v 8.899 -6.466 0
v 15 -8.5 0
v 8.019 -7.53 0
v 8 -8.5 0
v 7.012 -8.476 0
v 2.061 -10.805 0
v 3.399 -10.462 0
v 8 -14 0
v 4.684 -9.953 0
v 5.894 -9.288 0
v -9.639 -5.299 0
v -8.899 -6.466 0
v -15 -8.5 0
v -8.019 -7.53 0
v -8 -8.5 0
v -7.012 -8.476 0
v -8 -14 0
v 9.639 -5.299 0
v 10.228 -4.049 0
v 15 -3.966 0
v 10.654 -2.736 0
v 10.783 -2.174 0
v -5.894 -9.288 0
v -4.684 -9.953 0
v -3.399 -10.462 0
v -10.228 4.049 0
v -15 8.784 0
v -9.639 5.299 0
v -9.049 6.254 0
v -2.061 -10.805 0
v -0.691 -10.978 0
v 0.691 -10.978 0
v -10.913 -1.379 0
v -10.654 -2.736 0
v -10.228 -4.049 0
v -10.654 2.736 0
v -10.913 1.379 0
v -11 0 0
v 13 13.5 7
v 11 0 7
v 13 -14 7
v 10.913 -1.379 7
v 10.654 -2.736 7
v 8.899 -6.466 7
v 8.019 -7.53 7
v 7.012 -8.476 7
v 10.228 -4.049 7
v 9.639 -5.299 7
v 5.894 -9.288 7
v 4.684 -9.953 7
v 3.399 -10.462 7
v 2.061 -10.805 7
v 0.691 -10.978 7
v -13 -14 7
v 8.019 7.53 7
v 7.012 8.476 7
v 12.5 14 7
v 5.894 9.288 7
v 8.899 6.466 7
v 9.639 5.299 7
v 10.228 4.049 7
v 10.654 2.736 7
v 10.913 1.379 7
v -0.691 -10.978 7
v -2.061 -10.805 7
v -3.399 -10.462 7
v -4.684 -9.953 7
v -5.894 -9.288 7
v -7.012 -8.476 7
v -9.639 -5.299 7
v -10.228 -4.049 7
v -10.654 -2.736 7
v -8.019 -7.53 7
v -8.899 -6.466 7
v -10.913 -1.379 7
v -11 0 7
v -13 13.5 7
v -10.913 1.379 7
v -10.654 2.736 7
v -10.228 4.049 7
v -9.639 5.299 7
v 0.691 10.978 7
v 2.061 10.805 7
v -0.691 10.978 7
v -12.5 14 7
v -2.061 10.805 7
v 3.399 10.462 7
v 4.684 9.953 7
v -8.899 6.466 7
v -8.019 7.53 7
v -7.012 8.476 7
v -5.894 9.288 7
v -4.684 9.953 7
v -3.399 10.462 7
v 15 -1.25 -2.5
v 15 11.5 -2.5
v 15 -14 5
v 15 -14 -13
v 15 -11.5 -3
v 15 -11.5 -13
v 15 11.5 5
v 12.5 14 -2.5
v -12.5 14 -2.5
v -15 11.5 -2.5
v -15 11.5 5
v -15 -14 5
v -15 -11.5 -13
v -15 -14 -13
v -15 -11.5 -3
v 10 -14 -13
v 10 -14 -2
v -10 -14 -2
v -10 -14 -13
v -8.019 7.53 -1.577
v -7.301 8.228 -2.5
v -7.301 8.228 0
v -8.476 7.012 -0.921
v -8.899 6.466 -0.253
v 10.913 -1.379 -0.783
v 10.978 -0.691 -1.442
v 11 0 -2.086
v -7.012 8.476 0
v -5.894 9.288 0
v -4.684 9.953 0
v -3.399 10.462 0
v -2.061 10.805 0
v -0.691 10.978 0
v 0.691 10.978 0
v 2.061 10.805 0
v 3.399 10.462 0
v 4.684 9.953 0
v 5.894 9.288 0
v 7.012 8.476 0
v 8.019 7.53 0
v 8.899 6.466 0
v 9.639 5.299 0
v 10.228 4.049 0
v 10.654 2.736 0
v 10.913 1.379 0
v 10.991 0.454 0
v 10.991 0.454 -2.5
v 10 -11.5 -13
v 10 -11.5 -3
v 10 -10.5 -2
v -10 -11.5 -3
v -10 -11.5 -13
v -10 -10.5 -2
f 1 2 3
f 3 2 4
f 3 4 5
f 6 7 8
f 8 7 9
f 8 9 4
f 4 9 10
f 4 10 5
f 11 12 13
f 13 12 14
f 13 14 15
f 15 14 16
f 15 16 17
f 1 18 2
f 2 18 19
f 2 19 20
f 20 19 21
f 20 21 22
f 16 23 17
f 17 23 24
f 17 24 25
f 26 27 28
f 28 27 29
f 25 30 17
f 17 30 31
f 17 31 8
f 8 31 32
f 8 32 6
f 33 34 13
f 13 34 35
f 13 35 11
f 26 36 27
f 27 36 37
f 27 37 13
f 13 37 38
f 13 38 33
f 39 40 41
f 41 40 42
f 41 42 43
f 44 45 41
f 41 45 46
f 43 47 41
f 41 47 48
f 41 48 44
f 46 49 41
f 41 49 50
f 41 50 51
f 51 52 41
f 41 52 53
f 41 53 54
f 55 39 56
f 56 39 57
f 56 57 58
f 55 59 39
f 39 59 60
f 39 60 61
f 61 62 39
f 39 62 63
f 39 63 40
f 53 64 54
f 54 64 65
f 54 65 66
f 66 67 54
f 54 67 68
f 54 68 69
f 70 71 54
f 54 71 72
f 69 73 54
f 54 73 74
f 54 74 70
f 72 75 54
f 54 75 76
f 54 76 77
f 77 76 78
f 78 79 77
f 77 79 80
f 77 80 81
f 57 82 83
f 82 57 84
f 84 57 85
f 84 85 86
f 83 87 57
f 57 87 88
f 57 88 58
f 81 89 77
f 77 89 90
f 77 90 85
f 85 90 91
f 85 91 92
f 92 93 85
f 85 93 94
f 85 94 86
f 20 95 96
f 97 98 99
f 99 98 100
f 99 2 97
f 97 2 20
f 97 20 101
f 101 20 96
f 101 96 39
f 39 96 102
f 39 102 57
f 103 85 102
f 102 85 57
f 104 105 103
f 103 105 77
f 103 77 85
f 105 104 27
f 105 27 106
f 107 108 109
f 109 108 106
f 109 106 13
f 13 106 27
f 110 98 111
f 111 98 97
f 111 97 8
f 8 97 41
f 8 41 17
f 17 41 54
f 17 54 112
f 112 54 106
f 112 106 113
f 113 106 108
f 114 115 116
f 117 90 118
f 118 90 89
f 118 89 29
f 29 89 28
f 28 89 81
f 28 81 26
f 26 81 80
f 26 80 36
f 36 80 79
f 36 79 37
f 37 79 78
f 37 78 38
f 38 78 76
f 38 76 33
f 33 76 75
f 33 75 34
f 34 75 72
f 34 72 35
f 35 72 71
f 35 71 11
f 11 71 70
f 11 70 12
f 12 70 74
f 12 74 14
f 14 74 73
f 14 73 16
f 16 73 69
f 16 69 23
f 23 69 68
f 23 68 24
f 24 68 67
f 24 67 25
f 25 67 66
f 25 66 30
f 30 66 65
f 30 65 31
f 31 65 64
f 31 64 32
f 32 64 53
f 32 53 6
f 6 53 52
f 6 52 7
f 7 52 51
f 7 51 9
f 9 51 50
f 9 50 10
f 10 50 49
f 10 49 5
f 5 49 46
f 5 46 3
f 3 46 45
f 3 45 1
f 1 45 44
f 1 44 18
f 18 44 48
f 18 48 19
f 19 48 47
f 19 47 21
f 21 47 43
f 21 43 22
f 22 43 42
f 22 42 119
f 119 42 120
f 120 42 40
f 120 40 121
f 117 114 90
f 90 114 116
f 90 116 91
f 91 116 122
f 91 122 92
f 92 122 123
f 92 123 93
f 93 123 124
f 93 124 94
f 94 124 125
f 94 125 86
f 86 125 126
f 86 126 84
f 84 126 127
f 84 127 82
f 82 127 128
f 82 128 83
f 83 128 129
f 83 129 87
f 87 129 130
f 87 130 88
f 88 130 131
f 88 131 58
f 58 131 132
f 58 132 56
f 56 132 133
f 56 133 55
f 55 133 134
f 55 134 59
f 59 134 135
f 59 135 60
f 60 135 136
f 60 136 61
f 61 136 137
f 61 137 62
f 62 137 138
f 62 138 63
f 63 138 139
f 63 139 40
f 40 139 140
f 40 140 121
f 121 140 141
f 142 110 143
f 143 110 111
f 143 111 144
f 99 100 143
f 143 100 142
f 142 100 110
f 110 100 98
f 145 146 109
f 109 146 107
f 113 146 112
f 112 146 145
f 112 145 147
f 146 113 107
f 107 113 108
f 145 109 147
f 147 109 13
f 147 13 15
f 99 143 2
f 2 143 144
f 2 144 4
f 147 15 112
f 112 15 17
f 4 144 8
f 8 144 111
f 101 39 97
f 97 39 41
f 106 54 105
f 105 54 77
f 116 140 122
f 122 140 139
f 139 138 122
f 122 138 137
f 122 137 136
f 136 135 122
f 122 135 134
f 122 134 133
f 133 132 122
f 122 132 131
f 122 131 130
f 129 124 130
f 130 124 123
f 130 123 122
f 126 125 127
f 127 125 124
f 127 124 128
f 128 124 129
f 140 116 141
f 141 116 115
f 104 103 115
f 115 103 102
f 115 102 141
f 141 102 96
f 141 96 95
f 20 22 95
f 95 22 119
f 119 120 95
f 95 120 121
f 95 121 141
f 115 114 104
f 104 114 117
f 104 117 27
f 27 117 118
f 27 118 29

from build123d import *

# Parameters (mm, degrees)
SKETCH1_R           = 11
BOSS_EXTRUDE1_DEPTH = 7
SKETCH2_W           = 5
SKETCH2_H           = 2.5
BOSS_EXTRUDE2_DEPTH = 13
CHAMFER1_SIZE       = 3
CHAMFER2_SIZE       = 2
CHAMFER3_SIZE       = 2
CHAMFER4_SIZE       = 2
BOSS_EXTRUDE4_DEPTH = 2.5
CHAMFER6_SIZE       = 2.5


with BuildPart() as part:
    # Sketch1 → Boss-Extrude1 (new body)
    with BuildSketch(Plane.XY):
        Polygon((-15, 11.5), (-12.5, 14), (12.5, 14), (15, 11.5), (15, -14), (-15, -14), align=None)
        Circle(SKETCH1_R, mode=Mode.SUBTRACT)
    extrude(amount=BOSS_EXTRUDE1_DEPTH)

    # Sketch2 → Boss-Extrude2 (add)
    with BuildSketch(Plane(origin=(0, 0, 0), x_dir=(-1, 0, 0), z_dir=(0, 0, -1))):
        with Locations((-12.5, -12.75)):
            Rectangle(SKETCH2_W, SKETCH2_H)
        with Locations((12.5, -12.75)):
            Rectangle(SKETCH2_W, SKETCH2_H)
    extrude(amount=BOSS_EXTRUDE2_DEPTH)

    # Chamfer1
    chamfer1_edges = [part.edges().sort_by_distance(p)[0] for p in [
        (-12.5, -11.5, 0),
        (12.5, -11.5, 0),
    ]]
    chamfer(chamfer1_edges, length=CHAMFER1_SIZE)

    # Chamfer2
    chamfer2_edges = [part.edges().sort_by_distance(p)[0] for p in [
        (-10, -11.25, 0),
        (10, -11.25, 0),
    ]]
    chamfer(chamfer2_edges, length=CHAMFER2_SIZE)

    # Chamfer3
    chamfer3_edges = [part.edges().sort_by_distance(p)[0] for p in [
        (15, -1.25, 7),
    ]]
    chamfer(chamfer3_edges, length=CHAMFER3_SIZE)

    # Chamfer4
    chamfer4_edges = [part.edges().sort_by_distance(p)[0] for p in [
        (-15, -1.25, 7),
    ]]
    chamfer(chamfer4_edges, length=CHAMFER4_SIZE)

    # Sketch4 → Boss-Extrude4 (add)
    with BuildSketch(Plane(origin=(0, 0, 0), x_dir=(-1, 0, 0), z_dir=(0, 0, -1))):
        Polygon((-15, -1.25), (15, 11.5), (12.5, 14), (-12.5, 14), (-15, 11.5), align=None)
    extrude(amount=BOSS_EXTRUDE4_DEPTH)

    # Chamfer6
    # the kernel refuses this chamfer: 2.5 mm, written as the material it adds along each edge
    with BuildSketch(Plane(origin=(20.916998416, -3.764724327, 0), x_dir=(0.01075475478430782, 0.02530530537484193, -0.9996219169112968), z_dir=(-0.9203309184584746, 0.39114064034485174, 0))) as chamfer6_piece_1_section:
        Polygon((CHAMFER6_SIZE * 0.999621916911, CHAMFER6_SIZE * 0.0274958766106), (-CHAMFER6_SIZE * 0.0274958766106, CHAMFER6_SIZE * 0.999621916911), (0, 0), align=None)
    chamfer6_piece_1 = extrude(amount=17.214861222, mode=Mode.PRIVATE)
    chamfer6_piece_1 = chamfer6_piece_1 - Plane(origin=(0, 0, -0.830769879), x_dir=(1, 0, 0), z_dir=(0, 0, -1)) * Cylinder(11, 45, mode=Mode.PRIVATE)
    chamfer6_piece_1 = split(chamfer6_piece_1, bisect_by=Plane(origin=(15, -1.305255327, -0.830769879), z_dir=(-1, 0, 0)), keep=Keep.TOP, mode=Mode.PRIVATE)
    add(chamfer6_piece_1)
    with BuildSketch(Plane(origin=(-1.383846422, 5.71313473, 0), x_dir=(0.010754754784307773, 0.025305305374841817, -0.9996219169112968), z_dir=(-0.9203309184584746, 0.39114064034485174, 0))) as chamfer6_piece_2_section:
        Polygon((CHAMFER6_SIZE * 0.999621916911, CHAMFER6_SIZE * 0.0274958766106), (-CHAMFER6_SIZE * 0.0274958766106, CHAMFER6_SIZE * 0.999621916911), (0, 0), align=None)
    chamfer6_piece_2 = extrude(amount=21.224052785, mode=Mode.PRIVATE)
    chamfer6_piece_2 = chamfer6_piece_2 - Plane(origin=(0, 0, -0.851096237), x_dir=(1, 0, 0), z_dir=(0, 0, -1)) * Cylinder(11, 53, mode=Mode.PRIVATE)
    chamfer6_piece_2 = split(chamfer6_piece_2, bisect_by=Plane(origin=(-15, 9.126408424, -0.851096237), z_dir=(1, 0, 0)), keep=Keep.TOP, mode=Mode.PRIVATE)
    add(chamfer6_piece_2)


solid = part.part
